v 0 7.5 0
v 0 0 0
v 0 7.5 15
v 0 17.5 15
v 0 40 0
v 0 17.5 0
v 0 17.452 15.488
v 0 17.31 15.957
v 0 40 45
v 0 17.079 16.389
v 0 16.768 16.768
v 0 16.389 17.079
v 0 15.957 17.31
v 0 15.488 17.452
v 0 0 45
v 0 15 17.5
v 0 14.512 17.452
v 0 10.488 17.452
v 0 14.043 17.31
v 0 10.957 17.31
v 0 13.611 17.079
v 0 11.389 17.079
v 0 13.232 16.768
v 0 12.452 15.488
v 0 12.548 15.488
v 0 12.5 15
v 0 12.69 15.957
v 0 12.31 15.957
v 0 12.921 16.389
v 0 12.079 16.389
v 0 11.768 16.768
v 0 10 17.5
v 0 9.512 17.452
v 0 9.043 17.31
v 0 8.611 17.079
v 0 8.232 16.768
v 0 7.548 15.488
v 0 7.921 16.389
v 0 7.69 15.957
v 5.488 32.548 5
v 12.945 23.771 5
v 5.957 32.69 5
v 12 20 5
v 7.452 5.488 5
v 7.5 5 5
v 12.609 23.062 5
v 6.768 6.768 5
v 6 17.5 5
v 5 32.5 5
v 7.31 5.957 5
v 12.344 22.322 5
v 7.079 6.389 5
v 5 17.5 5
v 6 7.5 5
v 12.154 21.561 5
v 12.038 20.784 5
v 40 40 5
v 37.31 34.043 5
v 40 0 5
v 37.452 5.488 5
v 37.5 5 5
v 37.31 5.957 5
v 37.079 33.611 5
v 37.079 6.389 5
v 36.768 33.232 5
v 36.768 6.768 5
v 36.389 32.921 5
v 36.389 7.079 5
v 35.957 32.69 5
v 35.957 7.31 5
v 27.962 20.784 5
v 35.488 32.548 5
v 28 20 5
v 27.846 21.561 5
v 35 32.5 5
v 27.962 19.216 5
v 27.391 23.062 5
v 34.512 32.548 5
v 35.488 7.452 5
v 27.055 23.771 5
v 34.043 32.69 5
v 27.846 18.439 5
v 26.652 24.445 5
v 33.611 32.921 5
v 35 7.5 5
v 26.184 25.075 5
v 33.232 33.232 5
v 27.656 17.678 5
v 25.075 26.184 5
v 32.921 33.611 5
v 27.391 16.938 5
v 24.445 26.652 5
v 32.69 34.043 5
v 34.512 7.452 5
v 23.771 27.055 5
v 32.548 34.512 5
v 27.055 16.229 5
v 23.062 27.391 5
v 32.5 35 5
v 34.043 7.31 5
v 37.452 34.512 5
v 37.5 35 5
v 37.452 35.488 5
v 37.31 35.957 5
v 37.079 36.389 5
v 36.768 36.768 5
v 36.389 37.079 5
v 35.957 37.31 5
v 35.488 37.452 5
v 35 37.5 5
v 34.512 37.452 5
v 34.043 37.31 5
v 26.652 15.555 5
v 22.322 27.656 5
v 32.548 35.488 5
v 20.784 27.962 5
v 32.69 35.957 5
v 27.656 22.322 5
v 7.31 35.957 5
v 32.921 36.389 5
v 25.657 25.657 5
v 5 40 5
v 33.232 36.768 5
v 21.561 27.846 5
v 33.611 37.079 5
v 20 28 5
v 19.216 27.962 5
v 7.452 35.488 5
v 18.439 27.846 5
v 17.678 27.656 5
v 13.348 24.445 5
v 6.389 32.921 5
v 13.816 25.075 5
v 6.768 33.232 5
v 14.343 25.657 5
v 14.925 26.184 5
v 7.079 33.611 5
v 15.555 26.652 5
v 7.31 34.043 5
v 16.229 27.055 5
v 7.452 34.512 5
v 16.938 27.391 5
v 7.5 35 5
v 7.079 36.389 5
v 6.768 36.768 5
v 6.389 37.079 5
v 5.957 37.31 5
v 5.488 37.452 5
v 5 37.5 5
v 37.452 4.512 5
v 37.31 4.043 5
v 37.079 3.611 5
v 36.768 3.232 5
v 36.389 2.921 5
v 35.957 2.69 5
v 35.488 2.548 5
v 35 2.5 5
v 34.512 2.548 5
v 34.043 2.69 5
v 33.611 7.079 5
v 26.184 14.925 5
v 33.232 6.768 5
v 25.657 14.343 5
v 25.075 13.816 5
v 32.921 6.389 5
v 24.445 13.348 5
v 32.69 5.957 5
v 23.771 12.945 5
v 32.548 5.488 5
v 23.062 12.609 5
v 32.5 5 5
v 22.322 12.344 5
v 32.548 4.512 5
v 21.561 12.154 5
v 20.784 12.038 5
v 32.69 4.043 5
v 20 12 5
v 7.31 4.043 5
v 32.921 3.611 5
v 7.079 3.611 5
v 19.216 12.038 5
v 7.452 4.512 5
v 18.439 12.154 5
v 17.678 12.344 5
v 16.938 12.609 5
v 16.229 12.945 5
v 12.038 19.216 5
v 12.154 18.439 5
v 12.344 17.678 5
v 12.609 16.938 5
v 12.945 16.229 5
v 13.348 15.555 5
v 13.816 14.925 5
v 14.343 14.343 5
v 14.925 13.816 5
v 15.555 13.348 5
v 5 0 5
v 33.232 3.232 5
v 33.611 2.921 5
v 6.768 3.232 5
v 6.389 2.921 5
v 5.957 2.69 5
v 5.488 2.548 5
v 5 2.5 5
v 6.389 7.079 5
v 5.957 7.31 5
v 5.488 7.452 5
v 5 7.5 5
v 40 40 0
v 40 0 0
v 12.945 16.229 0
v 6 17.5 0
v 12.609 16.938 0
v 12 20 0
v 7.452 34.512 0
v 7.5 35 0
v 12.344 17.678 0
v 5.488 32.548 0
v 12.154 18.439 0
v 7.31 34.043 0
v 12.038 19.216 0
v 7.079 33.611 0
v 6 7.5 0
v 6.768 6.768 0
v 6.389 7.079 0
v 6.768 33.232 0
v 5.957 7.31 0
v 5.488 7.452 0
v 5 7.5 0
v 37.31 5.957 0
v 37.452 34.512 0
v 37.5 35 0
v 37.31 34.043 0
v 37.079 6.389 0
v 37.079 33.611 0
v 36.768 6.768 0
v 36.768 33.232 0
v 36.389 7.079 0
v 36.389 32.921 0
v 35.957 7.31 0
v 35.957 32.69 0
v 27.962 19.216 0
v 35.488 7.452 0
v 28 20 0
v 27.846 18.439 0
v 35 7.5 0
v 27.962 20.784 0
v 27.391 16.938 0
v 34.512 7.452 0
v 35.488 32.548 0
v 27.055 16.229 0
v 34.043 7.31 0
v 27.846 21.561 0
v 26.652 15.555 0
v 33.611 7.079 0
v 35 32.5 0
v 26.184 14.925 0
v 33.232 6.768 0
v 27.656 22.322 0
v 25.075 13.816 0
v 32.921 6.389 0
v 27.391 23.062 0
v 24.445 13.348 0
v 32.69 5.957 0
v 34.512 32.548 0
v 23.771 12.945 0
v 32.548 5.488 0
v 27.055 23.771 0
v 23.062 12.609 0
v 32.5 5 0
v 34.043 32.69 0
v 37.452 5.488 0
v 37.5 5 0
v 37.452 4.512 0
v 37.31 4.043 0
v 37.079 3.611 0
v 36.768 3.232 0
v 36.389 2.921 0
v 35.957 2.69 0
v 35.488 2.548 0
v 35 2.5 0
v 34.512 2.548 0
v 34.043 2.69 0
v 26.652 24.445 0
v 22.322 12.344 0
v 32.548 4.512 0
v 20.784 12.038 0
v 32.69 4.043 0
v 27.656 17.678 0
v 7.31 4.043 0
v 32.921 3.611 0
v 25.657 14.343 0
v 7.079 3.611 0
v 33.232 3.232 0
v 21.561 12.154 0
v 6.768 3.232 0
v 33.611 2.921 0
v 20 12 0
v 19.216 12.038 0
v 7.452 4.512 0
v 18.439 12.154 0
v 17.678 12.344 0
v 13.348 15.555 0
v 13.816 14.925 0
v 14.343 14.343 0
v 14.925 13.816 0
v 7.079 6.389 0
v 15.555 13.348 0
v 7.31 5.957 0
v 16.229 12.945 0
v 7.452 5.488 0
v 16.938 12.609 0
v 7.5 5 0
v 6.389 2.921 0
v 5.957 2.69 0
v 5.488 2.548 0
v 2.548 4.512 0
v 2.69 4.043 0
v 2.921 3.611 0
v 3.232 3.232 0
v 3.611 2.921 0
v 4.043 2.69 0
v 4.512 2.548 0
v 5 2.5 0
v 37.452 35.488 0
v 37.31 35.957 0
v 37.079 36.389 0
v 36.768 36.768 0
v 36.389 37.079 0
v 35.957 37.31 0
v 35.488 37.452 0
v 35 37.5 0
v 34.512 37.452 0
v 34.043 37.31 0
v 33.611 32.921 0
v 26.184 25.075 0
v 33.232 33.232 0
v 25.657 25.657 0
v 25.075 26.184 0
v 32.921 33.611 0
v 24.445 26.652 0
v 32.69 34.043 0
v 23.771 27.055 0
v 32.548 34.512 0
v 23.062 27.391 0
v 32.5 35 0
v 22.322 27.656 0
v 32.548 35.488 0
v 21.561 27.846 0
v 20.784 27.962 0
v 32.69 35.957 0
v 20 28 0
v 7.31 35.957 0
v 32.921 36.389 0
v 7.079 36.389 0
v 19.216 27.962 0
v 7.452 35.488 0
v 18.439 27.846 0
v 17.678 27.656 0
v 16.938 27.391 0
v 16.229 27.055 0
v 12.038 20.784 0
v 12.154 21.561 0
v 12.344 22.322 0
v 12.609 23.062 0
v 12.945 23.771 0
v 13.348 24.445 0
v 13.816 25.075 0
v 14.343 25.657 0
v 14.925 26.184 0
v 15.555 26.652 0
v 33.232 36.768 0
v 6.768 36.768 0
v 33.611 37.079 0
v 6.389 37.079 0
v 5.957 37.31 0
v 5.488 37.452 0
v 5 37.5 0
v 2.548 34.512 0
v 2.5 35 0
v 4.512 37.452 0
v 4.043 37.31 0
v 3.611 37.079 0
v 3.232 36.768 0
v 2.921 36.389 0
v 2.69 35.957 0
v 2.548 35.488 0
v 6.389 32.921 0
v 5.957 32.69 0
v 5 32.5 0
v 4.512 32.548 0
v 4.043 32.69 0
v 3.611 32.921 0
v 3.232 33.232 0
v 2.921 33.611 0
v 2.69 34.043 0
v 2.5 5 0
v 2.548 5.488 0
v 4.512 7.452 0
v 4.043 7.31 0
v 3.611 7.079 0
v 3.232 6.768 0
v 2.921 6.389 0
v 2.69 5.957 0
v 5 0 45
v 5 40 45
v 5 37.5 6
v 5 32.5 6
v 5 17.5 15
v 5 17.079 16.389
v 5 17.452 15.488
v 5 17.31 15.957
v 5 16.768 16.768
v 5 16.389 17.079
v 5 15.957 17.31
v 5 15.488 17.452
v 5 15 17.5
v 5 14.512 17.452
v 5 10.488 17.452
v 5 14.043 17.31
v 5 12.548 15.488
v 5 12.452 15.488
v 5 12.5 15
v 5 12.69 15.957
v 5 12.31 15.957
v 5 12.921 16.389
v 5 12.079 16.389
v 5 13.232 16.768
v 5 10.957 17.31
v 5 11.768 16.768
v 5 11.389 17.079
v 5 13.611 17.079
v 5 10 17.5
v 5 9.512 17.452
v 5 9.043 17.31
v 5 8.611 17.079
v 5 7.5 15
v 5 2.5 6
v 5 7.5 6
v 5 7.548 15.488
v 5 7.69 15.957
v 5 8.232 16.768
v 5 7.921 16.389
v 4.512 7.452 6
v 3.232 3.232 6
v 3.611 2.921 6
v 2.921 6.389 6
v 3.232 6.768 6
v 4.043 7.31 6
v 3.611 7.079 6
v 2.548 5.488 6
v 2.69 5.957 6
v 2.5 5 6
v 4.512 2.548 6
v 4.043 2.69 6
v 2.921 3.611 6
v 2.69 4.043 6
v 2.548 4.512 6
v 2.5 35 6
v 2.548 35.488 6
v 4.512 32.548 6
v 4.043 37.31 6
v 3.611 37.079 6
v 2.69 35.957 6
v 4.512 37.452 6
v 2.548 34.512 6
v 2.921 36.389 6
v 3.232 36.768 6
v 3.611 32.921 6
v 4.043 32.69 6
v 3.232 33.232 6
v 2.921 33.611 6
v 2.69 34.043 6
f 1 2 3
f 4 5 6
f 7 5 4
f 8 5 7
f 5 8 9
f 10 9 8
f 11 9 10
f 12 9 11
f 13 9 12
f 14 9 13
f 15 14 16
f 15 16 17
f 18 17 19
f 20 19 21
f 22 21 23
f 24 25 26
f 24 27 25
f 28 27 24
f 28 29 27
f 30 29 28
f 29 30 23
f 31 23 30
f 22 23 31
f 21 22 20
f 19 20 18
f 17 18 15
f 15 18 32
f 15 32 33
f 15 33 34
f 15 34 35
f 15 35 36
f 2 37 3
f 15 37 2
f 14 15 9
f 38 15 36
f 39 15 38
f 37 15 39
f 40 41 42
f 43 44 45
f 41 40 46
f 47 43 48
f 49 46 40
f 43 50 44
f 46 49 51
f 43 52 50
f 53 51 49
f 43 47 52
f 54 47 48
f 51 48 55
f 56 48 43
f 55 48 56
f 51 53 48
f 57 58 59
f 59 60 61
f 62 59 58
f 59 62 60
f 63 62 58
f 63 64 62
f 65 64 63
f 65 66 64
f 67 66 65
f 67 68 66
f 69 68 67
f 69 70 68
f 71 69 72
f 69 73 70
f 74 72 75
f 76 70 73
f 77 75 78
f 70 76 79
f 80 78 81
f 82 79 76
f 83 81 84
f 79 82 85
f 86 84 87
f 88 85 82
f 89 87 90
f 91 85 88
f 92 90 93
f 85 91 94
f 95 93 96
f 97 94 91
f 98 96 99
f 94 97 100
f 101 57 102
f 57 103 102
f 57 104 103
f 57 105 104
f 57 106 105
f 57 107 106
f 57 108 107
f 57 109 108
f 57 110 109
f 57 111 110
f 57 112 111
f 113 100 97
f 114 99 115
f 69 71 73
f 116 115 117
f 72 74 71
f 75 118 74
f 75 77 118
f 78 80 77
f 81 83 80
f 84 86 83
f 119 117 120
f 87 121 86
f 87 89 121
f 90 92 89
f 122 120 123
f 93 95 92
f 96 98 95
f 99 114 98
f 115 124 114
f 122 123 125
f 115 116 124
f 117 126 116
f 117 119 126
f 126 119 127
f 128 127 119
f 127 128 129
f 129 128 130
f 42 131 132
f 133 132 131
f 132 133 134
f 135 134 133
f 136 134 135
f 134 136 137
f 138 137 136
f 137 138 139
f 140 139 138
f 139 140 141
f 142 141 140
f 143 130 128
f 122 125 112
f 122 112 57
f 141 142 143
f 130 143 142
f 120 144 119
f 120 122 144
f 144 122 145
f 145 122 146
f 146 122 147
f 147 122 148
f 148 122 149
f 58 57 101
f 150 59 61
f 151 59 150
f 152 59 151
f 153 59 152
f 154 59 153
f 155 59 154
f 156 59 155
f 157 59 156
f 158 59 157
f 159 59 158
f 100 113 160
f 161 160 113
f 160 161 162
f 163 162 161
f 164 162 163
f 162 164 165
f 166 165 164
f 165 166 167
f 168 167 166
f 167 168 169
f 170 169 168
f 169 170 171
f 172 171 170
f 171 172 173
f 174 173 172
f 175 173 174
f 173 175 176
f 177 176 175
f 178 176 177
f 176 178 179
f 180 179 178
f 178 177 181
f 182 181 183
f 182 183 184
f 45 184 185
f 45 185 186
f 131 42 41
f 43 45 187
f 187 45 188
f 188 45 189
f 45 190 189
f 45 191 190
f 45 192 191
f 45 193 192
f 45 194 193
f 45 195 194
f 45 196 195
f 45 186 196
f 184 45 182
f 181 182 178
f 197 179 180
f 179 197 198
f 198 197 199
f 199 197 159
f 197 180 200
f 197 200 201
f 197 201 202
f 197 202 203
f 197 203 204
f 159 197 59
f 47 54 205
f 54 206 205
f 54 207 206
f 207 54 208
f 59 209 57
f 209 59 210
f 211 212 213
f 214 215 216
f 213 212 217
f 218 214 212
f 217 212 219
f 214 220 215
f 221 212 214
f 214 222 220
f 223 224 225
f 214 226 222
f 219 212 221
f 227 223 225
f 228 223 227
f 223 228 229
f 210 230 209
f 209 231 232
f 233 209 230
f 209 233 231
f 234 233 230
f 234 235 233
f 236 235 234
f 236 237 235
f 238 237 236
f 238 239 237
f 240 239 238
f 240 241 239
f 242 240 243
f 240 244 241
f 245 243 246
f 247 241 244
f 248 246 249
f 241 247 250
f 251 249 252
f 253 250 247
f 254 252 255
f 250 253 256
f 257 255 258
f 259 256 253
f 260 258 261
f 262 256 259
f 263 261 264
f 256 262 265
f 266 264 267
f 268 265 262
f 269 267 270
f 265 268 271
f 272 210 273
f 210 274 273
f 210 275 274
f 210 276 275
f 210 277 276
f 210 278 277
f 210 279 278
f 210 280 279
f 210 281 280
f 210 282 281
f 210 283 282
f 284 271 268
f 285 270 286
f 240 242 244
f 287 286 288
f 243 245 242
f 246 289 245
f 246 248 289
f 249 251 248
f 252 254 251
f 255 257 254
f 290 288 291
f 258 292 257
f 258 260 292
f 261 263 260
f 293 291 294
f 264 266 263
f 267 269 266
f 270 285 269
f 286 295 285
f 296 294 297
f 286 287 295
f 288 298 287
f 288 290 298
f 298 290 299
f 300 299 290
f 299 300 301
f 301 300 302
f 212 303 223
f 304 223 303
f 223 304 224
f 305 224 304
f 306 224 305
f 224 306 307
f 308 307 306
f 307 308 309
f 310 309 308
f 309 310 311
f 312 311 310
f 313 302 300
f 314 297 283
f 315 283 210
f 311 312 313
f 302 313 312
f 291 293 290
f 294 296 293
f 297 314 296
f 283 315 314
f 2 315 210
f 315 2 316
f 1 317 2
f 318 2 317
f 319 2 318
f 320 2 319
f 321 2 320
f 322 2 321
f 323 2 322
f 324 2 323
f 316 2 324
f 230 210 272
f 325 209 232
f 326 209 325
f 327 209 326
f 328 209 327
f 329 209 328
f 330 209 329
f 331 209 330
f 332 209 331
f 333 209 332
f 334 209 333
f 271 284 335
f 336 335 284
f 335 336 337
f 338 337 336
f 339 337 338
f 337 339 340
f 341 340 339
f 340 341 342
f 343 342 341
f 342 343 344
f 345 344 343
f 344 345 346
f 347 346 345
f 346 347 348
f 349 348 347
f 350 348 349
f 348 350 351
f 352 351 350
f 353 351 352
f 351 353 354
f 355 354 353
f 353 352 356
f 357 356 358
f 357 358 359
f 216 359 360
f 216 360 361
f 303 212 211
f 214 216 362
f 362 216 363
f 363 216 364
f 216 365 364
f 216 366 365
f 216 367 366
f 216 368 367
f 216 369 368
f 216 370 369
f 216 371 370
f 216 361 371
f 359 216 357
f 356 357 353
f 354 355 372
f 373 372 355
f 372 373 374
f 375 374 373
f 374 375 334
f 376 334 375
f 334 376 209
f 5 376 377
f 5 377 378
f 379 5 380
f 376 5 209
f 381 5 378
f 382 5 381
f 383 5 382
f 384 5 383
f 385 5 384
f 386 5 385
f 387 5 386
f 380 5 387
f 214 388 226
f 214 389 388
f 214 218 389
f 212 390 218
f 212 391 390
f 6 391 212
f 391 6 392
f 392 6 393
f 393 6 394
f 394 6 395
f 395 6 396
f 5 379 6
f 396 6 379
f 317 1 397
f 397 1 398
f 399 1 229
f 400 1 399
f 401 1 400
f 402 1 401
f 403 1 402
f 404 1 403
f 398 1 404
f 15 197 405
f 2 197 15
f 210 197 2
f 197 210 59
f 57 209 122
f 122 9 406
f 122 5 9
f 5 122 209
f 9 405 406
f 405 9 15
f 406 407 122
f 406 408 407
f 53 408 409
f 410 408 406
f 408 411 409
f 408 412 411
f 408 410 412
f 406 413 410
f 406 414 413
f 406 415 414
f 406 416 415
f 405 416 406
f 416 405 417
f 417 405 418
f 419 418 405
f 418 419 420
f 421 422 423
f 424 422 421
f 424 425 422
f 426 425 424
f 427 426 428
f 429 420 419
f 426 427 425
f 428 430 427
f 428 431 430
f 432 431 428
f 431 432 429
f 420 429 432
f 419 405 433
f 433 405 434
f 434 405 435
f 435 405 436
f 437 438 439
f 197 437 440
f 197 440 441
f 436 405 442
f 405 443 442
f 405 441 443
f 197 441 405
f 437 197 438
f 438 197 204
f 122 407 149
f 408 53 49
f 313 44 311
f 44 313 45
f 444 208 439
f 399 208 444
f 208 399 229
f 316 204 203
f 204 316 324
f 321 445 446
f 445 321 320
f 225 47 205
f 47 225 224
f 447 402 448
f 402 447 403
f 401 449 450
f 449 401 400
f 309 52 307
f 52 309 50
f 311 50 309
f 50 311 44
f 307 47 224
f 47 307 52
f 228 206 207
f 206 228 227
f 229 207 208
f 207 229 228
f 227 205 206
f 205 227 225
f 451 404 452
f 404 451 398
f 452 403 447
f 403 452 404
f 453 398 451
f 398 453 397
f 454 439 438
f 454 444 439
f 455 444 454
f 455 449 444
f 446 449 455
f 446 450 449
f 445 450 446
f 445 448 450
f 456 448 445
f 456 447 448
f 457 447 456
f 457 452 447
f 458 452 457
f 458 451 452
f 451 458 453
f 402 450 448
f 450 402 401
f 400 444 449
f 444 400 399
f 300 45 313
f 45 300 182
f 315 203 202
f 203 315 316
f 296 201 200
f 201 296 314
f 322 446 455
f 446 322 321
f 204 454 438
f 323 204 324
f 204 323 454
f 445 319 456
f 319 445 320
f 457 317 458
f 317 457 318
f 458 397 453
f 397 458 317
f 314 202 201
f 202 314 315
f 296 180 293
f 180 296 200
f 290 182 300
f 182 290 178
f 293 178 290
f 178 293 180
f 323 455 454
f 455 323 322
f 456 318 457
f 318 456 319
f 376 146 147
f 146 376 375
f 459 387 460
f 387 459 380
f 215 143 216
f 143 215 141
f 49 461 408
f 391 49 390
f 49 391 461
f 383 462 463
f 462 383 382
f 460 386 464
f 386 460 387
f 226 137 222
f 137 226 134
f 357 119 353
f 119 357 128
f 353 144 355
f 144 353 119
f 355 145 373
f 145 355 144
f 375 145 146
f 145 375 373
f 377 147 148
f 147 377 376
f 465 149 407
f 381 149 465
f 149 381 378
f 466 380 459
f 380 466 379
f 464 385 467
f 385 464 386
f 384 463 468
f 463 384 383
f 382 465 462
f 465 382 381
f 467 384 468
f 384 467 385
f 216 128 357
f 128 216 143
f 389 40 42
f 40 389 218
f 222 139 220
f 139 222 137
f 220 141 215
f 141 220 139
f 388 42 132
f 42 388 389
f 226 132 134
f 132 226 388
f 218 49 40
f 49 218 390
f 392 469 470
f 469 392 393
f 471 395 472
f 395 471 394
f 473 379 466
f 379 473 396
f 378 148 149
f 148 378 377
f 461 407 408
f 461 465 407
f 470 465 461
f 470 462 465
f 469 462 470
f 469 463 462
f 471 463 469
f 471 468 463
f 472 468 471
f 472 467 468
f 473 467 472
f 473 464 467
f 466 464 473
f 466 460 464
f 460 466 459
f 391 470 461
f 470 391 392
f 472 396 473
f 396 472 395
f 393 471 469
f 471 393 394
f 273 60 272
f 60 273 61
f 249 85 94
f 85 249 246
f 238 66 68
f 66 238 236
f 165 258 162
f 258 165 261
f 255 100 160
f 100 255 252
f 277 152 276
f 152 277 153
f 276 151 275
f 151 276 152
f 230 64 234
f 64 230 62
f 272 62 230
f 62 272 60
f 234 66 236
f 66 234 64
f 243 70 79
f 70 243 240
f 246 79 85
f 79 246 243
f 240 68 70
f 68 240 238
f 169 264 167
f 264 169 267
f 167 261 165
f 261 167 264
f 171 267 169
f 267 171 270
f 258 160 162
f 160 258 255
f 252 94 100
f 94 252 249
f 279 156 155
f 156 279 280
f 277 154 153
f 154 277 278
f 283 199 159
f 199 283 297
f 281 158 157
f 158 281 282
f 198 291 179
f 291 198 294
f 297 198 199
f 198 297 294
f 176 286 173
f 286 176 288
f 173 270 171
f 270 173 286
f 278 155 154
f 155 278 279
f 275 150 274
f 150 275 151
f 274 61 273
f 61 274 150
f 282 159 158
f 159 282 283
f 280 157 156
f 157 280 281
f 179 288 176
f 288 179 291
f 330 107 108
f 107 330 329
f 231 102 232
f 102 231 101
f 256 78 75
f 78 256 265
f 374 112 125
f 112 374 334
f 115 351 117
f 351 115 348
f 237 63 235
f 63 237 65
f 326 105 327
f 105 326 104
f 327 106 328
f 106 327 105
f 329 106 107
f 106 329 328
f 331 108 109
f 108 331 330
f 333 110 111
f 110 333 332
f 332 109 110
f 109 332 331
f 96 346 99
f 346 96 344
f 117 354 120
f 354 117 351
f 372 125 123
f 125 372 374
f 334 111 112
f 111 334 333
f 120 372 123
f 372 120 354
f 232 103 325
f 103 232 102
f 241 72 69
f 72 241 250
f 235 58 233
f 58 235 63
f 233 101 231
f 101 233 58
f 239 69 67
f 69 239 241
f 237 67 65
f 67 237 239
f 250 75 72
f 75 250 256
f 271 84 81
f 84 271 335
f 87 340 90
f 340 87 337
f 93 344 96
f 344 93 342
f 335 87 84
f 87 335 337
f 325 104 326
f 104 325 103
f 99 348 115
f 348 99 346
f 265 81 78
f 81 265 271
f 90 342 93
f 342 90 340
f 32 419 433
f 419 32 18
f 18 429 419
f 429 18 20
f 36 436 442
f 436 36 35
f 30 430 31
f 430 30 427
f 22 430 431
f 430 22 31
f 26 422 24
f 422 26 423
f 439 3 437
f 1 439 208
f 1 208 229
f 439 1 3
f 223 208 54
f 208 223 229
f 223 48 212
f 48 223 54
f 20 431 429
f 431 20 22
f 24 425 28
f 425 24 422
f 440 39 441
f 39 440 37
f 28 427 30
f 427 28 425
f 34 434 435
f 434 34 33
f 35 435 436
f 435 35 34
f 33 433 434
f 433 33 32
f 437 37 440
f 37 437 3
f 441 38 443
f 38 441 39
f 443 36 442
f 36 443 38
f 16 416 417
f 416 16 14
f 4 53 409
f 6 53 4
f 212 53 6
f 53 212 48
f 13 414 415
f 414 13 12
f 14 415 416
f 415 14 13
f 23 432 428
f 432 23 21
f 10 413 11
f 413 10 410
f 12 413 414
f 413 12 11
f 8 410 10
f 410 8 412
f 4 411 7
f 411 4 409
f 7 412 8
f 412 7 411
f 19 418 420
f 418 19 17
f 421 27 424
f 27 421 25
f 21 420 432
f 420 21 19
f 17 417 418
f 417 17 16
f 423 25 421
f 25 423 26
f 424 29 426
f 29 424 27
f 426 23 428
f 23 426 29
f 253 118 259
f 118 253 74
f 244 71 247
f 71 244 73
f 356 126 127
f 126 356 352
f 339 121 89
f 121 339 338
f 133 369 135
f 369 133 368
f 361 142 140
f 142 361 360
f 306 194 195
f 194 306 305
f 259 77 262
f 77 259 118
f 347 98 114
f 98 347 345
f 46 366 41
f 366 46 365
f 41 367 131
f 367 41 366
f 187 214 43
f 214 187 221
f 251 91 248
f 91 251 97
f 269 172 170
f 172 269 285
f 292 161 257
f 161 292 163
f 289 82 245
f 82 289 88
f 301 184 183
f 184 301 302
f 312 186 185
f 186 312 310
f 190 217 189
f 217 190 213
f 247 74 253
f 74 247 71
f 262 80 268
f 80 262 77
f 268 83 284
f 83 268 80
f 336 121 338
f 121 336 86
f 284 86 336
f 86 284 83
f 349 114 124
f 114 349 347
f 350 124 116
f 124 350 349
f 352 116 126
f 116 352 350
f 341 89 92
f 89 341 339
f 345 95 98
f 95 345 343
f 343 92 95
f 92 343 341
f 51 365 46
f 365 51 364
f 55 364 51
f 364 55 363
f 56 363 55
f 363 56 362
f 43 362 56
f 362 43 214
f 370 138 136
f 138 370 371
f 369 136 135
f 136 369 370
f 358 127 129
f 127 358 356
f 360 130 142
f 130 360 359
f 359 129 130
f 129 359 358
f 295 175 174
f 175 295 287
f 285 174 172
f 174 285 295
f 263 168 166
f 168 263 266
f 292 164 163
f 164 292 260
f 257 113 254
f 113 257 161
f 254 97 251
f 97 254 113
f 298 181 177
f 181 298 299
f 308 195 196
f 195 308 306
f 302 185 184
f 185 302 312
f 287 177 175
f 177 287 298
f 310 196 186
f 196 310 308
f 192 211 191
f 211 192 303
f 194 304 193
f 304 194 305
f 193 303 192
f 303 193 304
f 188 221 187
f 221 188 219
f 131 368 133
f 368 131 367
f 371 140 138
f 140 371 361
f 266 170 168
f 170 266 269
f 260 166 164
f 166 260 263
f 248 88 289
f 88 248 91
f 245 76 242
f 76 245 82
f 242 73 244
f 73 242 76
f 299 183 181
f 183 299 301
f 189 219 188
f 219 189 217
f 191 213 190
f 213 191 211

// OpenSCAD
// Parameters
bracket_thickness = 5;
bracket_length = 40;
bracket_height = 40;
hole_radius = 8;
mount_hole_radius = 2.5;
mount_hole_offset = 5;
slot_width = 5;
slot_height = 15;
slot_offset_x = 10;
slot_offset_y = 10;

// Main L-bracket
module l_bracket() {
    difference() {
        union() {
            // Base plate
            cube([bracket_length, bracket_length, bracket_thickness]);

            // Vertical plate
            translate([0, 0, bracket_thickness])
                cube([bracket_thickness, bracket_length, bracket_height]);
        }

        // Central hole in base
        translate([bracket_length/2, bracket_length/2, -1])
            cylinder(h = bracket_thickness + 2, r = hole_radius, $fn=64);

        // Mounting holes in base
        for (x = [mount_hole_offset, bracket_length - mount_hole_offset])
            for (y = [mount_hole_offset, bracket_length - mount_hole_offset])
                translate([x, y, -1])
                    cylinder(h = bracket_thickness + 2, r = mount_hole_radius, $fn=32);

        // Vertical slots
        for (y = [slot_offset_y, bracket_length - slot_offset_y - slot_height])
            translate([-1, y, bracket_thickness + 10])
                rotate([0, 90, 0])
                    rounded_slot(slot_height, slot_width, bracket_thickness + 2);
    }
}

// Rounded slot module
module rounded_slot(length, width, depth) {
    hull() {
        translate([0, 0, 0])
            cylinder(h = depth, r = width/2, $fn=32);
        translate([length, 0, 0])
            cylinder(h = depth, r = width/2, $fn=32);
    }
}

// Render the bracket
l_bracket();

 
